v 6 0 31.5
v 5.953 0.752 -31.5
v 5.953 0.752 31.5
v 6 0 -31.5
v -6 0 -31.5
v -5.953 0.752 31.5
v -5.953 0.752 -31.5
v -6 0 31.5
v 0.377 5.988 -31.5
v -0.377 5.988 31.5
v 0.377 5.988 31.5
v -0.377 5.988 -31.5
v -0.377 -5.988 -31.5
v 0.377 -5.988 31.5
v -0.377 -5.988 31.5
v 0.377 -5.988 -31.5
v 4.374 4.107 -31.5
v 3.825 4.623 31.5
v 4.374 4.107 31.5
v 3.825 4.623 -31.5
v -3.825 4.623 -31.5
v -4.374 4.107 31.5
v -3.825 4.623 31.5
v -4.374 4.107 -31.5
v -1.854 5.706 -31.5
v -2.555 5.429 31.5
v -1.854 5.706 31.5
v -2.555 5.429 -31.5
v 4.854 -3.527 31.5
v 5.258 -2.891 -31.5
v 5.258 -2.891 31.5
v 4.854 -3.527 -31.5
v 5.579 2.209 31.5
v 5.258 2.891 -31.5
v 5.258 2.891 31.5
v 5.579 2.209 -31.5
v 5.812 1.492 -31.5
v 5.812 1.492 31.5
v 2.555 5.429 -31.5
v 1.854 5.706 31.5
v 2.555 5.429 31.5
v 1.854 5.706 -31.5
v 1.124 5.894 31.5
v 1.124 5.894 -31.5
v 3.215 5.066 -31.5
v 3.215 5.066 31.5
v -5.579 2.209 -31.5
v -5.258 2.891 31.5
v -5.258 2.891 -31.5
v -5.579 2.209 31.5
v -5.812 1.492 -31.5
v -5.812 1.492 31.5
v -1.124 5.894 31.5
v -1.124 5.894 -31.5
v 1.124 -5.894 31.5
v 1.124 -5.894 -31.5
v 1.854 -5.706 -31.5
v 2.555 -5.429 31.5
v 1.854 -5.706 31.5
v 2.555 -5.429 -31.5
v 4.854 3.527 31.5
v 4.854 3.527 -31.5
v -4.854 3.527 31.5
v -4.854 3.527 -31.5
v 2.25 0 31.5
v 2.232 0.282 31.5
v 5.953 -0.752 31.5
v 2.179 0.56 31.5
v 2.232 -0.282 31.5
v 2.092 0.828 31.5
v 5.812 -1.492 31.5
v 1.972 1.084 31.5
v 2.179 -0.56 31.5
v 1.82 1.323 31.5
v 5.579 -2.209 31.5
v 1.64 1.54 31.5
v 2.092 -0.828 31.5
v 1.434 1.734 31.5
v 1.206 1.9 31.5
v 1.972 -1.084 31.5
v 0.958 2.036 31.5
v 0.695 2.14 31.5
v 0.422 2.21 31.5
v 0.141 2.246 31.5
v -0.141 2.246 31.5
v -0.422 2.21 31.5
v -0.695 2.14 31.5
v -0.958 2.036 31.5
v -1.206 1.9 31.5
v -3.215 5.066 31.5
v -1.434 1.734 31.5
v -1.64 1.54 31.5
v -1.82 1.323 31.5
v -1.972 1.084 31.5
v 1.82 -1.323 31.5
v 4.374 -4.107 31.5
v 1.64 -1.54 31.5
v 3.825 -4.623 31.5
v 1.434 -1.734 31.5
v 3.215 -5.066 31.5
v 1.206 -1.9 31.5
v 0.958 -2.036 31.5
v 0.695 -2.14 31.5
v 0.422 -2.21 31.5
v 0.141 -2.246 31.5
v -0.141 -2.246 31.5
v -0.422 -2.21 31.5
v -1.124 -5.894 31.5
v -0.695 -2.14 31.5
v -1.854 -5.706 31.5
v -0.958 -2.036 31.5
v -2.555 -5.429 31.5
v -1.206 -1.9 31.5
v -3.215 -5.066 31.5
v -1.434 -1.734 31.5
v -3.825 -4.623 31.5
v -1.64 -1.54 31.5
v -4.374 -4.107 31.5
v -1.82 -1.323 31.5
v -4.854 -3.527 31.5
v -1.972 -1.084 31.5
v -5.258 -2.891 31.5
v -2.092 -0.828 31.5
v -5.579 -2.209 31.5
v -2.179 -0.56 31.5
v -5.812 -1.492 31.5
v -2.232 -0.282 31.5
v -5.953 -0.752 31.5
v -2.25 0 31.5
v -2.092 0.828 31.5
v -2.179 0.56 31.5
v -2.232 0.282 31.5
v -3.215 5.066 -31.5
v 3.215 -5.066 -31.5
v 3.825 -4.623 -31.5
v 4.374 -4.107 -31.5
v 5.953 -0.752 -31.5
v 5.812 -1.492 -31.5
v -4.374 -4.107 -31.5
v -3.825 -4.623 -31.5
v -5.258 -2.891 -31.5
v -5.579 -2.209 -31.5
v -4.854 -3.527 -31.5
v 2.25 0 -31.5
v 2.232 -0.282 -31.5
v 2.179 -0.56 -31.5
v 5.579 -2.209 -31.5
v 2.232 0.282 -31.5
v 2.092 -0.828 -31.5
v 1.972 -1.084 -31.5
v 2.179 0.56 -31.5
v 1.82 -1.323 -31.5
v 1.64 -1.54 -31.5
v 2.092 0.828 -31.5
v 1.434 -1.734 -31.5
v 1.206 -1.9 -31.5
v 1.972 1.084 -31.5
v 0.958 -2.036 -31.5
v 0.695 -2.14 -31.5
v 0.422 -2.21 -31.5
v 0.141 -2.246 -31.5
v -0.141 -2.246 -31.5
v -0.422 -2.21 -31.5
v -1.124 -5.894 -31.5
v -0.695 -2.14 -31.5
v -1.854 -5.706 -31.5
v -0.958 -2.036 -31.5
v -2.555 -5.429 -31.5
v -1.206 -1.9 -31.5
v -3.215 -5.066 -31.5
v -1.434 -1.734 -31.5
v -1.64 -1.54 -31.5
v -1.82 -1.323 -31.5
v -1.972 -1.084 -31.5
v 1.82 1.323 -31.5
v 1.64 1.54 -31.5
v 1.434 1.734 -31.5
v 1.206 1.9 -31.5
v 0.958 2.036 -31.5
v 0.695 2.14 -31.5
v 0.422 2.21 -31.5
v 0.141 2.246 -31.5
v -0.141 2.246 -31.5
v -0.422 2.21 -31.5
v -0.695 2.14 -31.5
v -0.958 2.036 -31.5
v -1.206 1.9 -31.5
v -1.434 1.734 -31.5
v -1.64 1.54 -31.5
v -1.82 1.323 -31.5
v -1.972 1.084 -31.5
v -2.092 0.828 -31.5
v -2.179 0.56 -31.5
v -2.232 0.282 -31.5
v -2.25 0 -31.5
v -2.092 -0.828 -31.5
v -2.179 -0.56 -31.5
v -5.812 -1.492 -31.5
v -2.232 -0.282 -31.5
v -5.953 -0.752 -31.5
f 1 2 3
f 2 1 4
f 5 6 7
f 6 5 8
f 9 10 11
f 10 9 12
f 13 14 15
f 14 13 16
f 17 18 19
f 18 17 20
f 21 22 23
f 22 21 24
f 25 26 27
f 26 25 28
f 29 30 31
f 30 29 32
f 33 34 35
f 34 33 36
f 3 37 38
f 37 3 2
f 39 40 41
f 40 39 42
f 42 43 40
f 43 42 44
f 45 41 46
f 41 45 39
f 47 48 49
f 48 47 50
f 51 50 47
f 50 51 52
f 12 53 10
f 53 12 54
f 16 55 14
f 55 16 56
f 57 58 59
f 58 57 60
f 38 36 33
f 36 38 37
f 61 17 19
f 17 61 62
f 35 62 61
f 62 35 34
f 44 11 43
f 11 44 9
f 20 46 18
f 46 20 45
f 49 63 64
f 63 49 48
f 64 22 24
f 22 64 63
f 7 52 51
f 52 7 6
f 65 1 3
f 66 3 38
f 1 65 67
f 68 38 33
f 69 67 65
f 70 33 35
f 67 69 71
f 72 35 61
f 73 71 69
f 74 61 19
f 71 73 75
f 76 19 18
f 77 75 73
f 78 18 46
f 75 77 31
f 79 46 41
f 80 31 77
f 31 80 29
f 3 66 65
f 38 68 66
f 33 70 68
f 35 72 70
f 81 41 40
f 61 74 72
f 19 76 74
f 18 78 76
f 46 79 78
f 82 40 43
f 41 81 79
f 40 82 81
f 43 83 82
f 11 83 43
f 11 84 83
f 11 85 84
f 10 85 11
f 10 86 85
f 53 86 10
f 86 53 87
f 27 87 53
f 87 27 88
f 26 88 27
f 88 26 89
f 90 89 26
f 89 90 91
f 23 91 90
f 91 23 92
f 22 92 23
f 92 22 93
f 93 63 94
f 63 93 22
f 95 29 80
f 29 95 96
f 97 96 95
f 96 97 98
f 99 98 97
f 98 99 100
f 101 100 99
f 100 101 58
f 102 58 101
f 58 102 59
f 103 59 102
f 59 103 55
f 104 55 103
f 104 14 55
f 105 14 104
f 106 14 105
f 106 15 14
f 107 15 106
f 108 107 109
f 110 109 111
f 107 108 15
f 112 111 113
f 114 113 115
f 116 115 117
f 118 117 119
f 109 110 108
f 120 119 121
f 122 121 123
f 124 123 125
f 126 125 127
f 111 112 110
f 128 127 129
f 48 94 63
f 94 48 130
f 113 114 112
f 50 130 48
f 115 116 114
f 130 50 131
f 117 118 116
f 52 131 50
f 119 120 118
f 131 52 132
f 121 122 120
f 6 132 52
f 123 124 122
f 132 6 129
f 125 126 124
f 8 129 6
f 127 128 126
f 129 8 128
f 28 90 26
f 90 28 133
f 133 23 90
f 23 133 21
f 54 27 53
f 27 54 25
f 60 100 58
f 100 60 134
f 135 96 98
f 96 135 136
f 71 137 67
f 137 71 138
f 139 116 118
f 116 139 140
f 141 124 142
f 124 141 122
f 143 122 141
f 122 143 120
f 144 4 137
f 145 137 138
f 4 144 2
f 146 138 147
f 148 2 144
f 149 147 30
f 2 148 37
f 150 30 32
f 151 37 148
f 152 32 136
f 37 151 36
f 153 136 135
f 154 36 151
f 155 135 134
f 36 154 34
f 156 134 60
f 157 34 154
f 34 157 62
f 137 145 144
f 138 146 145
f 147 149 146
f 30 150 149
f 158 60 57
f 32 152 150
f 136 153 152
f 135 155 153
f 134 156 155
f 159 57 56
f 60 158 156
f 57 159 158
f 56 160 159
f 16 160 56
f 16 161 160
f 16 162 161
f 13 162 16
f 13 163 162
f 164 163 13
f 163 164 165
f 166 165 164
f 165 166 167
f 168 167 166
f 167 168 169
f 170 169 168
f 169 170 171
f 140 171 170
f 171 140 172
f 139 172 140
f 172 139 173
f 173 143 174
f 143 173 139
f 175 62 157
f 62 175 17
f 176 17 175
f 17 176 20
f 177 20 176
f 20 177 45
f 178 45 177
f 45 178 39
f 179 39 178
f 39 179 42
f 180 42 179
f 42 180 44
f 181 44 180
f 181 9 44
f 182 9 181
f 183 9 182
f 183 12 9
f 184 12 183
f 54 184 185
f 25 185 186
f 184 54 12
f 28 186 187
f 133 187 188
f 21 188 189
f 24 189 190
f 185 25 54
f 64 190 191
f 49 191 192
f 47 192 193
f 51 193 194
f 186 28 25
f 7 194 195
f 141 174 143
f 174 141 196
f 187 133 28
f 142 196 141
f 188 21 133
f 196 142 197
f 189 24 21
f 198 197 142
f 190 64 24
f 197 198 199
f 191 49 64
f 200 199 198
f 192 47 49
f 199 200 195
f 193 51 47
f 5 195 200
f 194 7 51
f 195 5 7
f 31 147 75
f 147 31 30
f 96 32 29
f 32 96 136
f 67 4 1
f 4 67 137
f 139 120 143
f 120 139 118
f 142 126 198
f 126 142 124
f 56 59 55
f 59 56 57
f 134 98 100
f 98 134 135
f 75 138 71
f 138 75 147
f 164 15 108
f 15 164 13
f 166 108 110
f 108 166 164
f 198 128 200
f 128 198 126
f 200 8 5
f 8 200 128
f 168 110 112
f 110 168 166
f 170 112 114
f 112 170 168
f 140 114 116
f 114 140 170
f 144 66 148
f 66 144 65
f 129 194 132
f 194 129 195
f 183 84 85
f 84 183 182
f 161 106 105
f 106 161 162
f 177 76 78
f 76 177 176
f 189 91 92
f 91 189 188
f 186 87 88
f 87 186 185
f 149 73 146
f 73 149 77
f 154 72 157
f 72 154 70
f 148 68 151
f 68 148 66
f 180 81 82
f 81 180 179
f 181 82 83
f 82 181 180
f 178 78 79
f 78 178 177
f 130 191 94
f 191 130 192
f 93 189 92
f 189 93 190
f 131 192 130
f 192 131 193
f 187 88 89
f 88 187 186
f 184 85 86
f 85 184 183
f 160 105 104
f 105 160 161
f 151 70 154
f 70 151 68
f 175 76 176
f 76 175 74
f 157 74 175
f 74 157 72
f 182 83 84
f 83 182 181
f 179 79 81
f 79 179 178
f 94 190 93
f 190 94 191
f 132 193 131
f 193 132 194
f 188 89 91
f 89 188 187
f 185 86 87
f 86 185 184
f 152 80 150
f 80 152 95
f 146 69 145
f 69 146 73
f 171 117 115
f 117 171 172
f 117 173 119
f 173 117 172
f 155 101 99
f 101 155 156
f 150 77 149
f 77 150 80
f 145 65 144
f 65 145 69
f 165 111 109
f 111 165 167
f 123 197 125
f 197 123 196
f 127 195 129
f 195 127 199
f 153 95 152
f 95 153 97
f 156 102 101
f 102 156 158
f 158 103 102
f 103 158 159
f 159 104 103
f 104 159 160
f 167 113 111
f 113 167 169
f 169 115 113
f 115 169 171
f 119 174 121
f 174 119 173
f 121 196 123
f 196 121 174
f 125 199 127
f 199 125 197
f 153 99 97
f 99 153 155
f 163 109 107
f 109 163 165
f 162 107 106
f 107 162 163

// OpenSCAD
$fn = 50;


difference() {
	union() {
		translate(v = [0, 0, -31.5000000000]) {
			cylinder(h = 63, r = 6.0000000000);
		}
	}
	union() {
		translate(v = [0, 0, -100.0000000000]) {
			cylinder(h = 200, r = 2.2500000000);
		}
	}
}
